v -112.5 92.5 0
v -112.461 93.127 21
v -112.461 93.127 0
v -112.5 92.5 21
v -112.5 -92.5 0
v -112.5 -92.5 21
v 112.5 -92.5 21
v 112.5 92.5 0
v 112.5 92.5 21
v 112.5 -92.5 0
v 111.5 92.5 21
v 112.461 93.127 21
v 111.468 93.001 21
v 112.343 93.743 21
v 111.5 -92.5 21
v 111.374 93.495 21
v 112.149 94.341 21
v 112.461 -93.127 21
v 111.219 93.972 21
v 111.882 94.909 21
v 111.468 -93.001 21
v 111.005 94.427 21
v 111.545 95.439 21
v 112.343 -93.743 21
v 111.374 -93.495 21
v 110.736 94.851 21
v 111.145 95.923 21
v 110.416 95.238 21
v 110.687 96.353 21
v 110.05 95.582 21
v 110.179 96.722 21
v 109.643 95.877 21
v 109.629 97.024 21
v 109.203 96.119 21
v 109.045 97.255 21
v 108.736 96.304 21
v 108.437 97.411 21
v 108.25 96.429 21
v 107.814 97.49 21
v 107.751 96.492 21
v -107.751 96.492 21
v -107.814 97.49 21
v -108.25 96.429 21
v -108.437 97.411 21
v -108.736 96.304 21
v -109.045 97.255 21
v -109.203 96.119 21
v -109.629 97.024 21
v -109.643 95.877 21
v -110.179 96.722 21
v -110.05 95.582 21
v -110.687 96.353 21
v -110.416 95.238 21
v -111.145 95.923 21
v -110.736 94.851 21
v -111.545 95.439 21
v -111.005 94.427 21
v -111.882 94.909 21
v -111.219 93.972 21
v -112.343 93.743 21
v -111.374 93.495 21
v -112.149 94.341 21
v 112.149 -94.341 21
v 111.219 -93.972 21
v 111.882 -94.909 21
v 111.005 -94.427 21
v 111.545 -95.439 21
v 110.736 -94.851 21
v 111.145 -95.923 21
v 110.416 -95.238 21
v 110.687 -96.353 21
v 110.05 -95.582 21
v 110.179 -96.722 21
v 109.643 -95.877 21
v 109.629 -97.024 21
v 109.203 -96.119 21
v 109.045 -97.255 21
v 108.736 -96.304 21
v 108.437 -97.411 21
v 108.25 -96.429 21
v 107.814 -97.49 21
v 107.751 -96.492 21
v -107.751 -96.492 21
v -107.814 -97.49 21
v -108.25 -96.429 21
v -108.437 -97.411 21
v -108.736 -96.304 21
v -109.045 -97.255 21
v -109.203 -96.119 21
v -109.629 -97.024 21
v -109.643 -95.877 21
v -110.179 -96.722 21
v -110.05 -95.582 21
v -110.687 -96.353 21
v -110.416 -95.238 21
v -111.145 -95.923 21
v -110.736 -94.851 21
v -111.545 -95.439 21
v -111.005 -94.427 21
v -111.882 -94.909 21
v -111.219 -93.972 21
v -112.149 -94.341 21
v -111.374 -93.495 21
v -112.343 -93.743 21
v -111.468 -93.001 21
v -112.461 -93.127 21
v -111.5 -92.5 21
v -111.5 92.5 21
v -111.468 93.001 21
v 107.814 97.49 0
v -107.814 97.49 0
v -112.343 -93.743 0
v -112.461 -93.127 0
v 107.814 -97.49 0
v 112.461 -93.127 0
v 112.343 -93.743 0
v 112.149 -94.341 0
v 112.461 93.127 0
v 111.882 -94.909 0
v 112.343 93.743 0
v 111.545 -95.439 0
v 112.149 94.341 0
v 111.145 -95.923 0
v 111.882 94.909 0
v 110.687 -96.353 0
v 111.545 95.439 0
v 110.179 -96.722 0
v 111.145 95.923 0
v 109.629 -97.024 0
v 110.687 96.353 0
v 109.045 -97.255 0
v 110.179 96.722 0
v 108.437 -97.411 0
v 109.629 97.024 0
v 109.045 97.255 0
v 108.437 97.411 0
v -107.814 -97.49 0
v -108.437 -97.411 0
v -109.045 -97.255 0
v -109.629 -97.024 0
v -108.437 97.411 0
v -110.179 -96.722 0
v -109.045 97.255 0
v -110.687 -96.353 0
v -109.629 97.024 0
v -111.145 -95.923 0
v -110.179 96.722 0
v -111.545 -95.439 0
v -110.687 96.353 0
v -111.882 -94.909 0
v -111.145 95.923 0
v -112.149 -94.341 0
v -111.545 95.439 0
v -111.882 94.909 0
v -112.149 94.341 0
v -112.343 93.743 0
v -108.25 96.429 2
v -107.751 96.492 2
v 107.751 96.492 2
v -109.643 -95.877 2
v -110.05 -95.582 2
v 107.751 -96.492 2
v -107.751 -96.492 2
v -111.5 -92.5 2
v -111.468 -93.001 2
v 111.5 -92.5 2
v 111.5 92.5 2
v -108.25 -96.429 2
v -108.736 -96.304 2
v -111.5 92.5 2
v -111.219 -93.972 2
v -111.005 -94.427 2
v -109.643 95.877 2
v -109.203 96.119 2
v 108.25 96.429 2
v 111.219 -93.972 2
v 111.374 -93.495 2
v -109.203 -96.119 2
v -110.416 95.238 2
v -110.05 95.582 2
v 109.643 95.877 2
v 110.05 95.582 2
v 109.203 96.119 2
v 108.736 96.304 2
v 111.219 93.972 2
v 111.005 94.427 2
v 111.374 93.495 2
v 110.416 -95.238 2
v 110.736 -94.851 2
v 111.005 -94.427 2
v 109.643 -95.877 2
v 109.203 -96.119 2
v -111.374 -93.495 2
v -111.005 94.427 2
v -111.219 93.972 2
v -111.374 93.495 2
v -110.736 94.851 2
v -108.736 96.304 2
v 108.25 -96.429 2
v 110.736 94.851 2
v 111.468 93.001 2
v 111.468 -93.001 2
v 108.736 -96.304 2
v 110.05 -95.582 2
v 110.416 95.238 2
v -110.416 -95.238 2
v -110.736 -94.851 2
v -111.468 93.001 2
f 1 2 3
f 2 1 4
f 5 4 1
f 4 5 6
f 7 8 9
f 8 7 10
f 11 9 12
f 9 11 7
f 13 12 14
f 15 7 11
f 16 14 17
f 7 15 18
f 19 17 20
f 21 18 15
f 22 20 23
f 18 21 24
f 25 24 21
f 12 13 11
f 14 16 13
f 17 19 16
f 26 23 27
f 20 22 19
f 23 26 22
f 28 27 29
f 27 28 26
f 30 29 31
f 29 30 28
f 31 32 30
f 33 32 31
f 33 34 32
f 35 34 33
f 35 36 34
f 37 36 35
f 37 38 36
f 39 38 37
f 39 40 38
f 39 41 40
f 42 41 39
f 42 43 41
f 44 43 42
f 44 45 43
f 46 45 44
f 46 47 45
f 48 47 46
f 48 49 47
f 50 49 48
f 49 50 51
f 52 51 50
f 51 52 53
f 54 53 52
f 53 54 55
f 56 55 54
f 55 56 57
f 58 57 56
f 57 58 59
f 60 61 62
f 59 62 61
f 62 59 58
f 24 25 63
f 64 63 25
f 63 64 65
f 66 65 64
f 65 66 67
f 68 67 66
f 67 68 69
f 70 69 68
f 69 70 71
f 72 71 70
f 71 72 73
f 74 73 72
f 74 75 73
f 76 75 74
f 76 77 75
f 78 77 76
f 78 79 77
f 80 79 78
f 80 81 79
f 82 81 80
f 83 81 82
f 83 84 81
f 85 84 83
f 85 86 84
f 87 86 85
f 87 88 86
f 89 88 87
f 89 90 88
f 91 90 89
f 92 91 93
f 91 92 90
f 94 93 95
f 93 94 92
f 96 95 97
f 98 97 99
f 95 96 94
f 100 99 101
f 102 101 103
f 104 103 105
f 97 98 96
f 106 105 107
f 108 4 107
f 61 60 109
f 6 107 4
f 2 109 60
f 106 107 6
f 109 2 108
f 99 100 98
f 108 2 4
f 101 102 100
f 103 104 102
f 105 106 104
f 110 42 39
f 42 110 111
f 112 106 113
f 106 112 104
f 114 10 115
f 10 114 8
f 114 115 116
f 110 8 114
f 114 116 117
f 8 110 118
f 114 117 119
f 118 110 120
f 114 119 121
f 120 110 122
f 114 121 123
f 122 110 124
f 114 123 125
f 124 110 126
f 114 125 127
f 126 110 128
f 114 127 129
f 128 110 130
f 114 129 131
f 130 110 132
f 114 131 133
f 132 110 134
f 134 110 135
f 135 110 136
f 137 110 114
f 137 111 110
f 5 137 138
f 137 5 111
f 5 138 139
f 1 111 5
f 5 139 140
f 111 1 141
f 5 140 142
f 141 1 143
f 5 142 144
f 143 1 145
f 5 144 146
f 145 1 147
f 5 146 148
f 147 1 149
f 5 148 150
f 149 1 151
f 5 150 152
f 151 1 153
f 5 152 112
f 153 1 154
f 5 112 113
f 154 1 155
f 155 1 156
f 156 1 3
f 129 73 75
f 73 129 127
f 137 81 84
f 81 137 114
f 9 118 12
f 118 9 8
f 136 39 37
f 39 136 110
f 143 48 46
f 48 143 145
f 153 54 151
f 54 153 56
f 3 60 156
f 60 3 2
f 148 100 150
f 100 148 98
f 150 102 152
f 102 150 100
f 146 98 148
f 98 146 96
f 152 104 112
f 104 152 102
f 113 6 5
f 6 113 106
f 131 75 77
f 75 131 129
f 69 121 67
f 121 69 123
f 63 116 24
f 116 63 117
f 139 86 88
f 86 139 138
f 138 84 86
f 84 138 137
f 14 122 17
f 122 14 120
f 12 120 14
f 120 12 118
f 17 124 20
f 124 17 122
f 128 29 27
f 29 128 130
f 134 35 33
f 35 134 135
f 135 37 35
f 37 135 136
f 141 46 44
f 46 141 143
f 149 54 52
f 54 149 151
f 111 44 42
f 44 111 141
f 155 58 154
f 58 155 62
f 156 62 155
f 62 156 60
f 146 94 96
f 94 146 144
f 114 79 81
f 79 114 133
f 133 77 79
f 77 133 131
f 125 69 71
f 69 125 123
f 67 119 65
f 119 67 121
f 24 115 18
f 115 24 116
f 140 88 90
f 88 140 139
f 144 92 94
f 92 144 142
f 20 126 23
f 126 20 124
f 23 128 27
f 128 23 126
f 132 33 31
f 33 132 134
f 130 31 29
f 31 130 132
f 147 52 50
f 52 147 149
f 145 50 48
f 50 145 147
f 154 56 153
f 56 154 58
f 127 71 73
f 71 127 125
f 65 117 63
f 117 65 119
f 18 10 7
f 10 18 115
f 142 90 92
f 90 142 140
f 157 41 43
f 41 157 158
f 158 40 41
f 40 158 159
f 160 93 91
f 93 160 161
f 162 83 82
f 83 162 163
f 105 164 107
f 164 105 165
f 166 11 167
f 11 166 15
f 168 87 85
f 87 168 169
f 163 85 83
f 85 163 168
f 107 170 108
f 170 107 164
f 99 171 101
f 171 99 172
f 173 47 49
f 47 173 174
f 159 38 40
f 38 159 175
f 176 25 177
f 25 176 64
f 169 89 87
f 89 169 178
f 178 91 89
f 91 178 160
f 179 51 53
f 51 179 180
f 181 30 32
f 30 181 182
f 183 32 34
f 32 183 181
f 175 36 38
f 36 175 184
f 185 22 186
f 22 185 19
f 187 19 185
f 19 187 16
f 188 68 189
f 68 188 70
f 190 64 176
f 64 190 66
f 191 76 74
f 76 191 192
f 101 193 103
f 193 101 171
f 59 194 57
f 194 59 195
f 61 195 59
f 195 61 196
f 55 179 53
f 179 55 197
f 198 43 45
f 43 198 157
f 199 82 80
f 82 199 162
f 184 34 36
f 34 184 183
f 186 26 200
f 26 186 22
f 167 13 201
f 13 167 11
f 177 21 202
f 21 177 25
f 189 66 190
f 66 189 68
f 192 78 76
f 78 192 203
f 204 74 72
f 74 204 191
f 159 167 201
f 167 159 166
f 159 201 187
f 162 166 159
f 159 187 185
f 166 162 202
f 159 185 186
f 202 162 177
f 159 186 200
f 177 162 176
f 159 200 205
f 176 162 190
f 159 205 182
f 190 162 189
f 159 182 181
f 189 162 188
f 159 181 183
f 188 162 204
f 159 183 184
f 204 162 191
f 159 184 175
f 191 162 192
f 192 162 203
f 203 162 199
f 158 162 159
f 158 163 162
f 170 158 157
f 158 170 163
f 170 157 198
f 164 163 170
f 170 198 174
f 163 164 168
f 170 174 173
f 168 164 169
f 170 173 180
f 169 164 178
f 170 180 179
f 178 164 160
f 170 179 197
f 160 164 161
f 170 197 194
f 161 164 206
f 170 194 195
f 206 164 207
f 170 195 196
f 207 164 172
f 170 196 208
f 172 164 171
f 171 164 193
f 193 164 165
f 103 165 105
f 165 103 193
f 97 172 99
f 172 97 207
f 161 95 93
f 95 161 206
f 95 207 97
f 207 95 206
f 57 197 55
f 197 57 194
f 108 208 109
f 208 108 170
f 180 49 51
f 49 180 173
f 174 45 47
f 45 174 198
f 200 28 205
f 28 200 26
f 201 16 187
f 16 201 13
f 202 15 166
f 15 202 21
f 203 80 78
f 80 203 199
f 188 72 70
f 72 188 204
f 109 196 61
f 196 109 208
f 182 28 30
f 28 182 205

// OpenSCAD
$fn = 50;


difference() {
	union() {
		hull() {
			translate(v = [-107.5000000000, 92.5000000000, 0]) {
				cylinder(h = 21, r = 5);
			}
			translate(v = [107.5000000000, 92.5000000000, 0]) {
				cylinder(h = 21, r = 5);
			}
			translate(v = [-107.5000000000, -92.5000000000, 0]) {
				cylinder(h = 21, r = 5);
			}
			translate(v = [107.5000000000, -92.5000000000, 0]) {
				cylinder(h = 21, r = 5);
			}
		}
	}
	union() {
		translate(v = [0, 0, 2]) {
			hull() {
				translate(v = [-107.5000000000, 92.5000000000, 0]) {
					cylinder(h = 19, r = 4);
				}
				translate(v = [107.5000000000, 92.5000000000, 0]) {
					cylinder(h = 19, r = 4);
				}
				translate(v = [-107.5000000000, -92.5000000000, 0]) {
					cylinder(h = 19, r = 4);
				}
				translate(v = [107.5000000000, -92.5000000000, 0]) {
					cylinder(h = 19, r = 4);
				}
			}
		}
	}
}
